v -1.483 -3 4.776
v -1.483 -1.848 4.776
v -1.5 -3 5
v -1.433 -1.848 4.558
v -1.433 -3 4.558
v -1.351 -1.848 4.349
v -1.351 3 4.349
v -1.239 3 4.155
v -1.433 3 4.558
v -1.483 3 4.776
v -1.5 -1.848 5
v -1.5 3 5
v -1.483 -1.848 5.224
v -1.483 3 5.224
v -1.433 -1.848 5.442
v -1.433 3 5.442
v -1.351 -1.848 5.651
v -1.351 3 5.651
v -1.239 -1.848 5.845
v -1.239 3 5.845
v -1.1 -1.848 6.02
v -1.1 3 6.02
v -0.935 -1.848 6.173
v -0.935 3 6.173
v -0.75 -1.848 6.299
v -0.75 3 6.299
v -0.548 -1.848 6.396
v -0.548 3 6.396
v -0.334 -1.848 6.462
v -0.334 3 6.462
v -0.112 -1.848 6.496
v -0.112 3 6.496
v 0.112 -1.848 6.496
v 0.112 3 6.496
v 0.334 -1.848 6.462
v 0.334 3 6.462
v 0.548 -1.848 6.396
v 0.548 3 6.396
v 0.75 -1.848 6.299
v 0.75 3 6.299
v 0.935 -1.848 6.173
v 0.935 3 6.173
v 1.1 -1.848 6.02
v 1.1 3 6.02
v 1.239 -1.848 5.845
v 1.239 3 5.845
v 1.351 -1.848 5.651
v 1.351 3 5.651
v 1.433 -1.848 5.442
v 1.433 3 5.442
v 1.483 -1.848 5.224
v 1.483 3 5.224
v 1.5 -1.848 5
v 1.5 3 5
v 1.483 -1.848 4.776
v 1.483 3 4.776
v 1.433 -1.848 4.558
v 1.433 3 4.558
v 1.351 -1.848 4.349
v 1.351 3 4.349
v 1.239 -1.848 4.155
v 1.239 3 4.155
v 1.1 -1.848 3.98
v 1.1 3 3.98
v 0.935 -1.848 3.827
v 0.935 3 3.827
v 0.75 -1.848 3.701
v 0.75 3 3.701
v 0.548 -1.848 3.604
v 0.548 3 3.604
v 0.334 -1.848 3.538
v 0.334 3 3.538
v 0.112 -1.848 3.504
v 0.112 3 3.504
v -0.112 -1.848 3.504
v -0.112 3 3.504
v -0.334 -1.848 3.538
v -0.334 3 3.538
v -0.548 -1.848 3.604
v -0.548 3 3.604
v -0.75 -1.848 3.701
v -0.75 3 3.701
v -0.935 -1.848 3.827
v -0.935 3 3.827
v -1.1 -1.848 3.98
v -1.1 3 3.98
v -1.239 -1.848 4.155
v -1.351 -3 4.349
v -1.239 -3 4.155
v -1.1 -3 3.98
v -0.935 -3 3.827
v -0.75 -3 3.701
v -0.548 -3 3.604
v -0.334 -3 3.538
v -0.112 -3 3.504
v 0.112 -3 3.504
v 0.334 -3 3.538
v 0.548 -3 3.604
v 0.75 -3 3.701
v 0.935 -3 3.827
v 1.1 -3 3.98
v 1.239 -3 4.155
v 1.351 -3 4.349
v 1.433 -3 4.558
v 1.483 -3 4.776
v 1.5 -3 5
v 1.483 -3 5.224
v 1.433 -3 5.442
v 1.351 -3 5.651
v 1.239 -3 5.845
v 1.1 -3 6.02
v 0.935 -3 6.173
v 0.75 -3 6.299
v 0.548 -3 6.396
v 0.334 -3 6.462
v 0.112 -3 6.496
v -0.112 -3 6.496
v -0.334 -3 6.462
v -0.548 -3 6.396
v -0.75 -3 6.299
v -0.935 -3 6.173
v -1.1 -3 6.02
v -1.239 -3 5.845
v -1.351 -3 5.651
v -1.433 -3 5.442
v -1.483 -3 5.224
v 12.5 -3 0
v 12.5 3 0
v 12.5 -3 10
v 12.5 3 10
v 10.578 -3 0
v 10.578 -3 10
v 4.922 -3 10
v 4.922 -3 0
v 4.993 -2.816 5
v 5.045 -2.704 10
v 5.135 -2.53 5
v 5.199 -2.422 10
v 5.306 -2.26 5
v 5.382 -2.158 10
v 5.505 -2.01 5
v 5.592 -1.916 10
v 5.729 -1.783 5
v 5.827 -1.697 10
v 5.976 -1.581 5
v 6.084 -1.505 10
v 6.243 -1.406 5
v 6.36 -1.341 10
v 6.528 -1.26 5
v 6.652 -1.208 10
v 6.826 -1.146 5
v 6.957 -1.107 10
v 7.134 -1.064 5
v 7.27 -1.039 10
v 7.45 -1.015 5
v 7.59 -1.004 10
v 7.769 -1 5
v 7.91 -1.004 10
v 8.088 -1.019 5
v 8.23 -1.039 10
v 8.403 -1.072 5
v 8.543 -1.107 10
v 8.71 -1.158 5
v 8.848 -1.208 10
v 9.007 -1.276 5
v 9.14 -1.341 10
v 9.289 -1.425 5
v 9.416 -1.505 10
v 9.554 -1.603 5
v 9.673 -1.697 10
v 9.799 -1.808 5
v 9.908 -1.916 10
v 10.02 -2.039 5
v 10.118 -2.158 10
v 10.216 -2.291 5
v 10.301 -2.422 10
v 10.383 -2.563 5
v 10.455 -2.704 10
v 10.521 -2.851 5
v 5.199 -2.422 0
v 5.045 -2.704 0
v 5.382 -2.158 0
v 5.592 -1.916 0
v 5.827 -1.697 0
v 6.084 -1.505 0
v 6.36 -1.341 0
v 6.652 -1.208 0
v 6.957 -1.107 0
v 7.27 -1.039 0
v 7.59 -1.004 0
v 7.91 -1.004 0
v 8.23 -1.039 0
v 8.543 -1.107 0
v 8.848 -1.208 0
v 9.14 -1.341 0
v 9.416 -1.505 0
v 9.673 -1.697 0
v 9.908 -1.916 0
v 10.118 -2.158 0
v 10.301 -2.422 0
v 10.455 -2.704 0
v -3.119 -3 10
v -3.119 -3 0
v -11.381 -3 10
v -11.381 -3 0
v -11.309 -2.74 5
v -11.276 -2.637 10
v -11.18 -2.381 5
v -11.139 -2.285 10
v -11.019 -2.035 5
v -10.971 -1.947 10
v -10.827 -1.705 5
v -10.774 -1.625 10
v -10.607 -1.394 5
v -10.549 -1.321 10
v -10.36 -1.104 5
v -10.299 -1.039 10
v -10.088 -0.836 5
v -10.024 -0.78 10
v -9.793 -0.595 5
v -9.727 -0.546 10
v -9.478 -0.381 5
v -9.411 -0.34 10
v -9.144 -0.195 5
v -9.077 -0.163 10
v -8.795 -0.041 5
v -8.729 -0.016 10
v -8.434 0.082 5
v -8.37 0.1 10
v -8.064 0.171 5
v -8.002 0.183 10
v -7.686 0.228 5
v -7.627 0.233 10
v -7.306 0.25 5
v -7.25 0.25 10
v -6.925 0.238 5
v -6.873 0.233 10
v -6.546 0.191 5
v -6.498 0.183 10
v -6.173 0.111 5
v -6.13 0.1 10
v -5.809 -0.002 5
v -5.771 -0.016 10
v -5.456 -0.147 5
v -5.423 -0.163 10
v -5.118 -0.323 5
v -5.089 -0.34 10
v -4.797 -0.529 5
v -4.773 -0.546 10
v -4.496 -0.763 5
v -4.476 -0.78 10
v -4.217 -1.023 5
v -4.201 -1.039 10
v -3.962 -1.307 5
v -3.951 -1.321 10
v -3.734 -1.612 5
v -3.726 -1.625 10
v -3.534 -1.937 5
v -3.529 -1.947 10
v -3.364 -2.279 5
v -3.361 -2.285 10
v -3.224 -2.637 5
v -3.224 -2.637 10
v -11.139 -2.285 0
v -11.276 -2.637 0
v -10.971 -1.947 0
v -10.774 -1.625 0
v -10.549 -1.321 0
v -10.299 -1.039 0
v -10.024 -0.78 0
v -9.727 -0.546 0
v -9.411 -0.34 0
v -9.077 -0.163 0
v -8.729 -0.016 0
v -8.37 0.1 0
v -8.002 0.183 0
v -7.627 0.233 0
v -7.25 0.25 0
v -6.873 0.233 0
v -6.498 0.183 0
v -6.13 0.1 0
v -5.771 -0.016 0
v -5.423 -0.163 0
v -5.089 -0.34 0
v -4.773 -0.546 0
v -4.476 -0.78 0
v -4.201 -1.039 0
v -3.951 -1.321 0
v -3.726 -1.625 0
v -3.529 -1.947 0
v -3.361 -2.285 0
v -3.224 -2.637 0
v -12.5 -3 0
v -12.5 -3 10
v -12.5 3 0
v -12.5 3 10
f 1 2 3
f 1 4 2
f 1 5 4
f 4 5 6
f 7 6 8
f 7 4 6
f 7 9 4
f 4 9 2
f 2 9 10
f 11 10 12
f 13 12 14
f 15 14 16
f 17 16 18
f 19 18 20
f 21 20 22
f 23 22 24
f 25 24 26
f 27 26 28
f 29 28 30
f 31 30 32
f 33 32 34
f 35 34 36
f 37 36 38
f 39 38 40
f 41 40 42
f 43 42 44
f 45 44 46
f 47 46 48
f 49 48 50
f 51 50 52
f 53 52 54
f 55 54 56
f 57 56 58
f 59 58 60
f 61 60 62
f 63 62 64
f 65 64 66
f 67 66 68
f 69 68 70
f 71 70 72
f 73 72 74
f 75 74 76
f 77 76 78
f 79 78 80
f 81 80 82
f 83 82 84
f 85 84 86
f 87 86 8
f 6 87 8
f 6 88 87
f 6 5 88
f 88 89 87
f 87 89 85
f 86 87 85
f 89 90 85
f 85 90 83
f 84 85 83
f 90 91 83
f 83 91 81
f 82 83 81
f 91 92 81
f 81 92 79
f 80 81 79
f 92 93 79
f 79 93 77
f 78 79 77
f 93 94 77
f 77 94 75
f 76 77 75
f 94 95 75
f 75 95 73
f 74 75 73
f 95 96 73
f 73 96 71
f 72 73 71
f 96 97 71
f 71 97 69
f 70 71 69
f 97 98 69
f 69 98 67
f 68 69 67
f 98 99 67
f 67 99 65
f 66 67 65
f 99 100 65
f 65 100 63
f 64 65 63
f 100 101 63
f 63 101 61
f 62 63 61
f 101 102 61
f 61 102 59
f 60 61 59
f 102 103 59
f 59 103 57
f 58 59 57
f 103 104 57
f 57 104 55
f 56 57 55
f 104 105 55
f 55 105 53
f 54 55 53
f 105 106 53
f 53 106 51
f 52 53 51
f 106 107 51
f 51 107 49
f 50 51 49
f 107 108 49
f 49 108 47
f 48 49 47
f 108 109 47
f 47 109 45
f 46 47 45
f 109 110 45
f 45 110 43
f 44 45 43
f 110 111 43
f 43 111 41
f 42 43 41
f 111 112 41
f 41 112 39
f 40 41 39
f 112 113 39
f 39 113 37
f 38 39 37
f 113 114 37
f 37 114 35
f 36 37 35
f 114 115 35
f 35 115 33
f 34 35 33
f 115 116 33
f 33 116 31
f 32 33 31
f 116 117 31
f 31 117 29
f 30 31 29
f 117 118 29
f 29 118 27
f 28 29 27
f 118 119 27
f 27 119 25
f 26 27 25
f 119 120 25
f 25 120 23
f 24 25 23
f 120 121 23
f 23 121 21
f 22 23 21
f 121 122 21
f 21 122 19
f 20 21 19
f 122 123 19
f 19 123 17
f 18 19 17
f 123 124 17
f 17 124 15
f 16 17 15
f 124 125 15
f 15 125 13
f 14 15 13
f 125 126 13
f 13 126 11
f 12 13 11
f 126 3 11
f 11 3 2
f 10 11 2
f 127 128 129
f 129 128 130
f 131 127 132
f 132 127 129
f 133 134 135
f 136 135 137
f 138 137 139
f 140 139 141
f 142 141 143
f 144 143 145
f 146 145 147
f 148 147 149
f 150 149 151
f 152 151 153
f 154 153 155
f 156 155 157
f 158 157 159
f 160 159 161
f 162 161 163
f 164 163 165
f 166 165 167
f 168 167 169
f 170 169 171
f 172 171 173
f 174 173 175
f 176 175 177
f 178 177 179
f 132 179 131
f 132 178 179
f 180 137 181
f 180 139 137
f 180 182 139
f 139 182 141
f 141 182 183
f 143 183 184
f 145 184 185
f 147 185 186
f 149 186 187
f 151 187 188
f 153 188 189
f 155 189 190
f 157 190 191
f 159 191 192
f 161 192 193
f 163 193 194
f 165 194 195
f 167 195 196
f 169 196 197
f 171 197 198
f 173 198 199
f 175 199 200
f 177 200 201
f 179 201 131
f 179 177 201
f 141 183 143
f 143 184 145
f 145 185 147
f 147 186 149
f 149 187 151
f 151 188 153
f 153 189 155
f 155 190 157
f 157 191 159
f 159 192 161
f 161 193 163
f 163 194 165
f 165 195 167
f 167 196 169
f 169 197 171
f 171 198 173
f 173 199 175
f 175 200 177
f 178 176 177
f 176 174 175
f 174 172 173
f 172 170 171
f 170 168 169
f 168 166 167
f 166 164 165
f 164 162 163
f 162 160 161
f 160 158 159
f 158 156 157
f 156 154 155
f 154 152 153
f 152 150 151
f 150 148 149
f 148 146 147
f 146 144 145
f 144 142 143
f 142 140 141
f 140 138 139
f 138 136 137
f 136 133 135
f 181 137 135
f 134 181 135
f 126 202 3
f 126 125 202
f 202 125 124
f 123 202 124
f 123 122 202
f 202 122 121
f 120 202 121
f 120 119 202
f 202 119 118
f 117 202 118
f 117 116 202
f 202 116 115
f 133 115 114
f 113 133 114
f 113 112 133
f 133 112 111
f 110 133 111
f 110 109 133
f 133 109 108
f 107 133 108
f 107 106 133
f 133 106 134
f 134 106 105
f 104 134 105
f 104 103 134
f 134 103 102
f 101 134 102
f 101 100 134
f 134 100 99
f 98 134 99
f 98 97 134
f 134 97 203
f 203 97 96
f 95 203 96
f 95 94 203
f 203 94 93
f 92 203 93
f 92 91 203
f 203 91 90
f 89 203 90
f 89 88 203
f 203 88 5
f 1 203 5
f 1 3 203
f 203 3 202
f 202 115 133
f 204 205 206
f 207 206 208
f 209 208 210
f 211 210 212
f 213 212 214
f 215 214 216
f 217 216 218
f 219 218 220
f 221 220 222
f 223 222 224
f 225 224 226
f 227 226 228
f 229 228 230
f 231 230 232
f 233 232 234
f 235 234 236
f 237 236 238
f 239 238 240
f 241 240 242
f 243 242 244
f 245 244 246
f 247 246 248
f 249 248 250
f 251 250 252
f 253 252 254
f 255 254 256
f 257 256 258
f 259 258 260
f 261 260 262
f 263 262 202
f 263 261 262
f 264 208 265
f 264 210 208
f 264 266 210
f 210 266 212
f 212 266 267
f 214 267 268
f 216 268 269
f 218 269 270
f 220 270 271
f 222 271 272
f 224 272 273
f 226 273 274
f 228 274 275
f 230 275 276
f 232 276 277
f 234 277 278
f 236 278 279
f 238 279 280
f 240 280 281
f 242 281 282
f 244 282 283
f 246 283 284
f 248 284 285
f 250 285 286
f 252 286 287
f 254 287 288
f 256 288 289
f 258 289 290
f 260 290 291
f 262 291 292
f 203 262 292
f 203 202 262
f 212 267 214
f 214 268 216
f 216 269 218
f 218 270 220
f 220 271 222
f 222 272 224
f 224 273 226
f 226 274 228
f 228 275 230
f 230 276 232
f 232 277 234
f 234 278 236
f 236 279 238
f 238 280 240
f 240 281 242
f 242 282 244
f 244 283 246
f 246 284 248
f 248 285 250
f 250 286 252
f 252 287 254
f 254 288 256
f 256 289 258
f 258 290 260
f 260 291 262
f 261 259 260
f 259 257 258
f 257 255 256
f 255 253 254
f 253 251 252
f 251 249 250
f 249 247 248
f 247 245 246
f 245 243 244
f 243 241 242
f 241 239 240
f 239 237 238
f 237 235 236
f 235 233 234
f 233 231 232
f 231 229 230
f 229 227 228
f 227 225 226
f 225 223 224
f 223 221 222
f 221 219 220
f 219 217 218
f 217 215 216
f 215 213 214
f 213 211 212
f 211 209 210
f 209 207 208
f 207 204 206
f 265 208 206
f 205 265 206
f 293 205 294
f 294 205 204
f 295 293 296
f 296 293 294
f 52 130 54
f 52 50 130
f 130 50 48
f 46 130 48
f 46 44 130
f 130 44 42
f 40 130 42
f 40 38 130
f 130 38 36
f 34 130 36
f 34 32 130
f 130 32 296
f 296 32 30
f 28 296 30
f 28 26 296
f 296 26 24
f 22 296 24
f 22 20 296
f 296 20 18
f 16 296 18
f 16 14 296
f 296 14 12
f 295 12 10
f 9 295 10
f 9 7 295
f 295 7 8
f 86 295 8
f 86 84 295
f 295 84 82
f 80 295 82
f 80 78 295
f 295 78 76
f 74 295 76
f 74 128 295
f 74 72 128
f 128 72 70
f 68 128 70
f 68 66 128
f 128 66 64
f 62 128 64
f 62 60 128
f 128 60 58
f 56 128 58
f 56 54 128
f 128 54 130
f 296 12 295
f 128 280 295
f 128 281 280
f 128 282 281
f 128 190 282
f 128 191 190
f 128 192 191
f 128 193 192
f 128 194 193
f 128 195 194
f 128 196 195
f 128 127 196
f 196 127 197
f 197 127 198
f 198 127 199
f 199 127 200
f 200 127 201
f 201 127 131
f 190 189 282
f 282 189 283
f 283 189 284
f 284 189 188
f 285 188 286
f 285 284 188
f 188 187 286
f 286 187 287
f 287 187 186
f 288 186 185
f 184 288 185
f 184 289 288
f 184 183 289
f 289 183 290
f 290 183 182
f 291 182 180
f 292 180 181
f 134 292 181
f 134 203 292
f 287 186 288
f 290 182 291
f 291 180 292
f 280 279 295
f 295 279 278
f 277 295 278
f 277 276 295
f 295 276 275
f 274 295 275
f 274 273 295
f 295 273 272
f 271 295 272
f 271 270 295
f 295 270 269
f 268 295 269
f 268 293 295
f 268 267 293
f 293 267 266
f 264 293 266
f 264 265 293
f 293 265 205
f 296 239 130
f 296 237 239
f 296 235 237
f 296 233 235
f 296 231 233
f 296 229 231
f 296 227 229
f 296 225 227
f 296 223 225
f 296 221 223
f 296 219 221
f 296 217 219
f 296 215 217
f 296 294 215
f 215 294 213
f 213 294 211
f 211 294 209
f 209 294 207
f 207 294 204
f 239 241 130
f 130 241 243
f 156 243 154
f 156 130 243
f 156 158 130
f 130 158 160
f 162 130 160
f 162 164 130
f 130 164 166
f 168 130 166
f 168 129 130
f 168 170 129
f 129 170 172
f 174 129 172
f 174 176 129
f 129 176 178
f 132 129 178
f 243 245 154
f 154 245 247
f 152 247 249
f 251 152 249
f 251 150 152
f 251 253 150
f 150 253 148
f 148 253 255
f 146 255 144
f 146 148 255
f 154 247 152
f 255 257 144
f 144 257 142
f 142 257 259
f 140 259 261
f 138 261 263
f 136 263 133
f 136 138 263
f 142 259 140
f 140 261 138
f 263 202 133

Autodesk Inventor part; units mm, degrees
ref_plane "YZ Plane" through (0, 0, 0) normal (1, 0, 0) x (0, 1, 0)
ref_plane "XZ Plane" through (0, 0, 0) normal (0, 1, 0) x (-1, 0, 0)
ref_plane "XY Plane" through (0, 0, 0) normal (0, 0, 1) x (1, 0, 0)
sketch "Эскиз1" plane through (0, 0, 0) normal (0, 0, 1) x (1, 0, 0)
  line L0 (-12.5, 3) -> (12.5, 3)
  line L1 (12.5, 3) -> (12.5, -3)
  line L2 (-12.5, -3) -> (-12.5, 3)
  arc A0 (10.5784, -3) -> (4.9216, -3) centre (7.75, -4) ccw
  arc A1 (-3.1193, -3) -> (-11.3807, -3) centre (-7.25, -4) ccw
  line L3 (12.5, -3) -> (10.5784, -3)
  line L4 (4.9216, -3) -> (-3.1193, -3)
  line L5 (-11.3807, -3) -> (-12.5, -3)
  point P0 (0, 0)
  point P1 (-12.5, 0)
  point P2 (0, 3)
  dimension "d0" = 25
  dimension "d1" = 6
  dimension "d2" = 6
  dimension "d3" = 8.5
  dimension "d7" = 5.25
  dimension "d8" = 15
extrude "Выдавливание1" add sketch "Эскиз1" along normal blind 10
sketch "Эскиз2" plane through (-12.5, 3, 0) normal (0, 1, 0) x (1, 0, 0)
  point P0 (12.5, 0)
  point P1 (12.5, -5)
hole "Отверстие1" at (0, 3, 5) direction (0, -1, 0) diameter 3 end through all
properties part number "Крепление кабеля"
